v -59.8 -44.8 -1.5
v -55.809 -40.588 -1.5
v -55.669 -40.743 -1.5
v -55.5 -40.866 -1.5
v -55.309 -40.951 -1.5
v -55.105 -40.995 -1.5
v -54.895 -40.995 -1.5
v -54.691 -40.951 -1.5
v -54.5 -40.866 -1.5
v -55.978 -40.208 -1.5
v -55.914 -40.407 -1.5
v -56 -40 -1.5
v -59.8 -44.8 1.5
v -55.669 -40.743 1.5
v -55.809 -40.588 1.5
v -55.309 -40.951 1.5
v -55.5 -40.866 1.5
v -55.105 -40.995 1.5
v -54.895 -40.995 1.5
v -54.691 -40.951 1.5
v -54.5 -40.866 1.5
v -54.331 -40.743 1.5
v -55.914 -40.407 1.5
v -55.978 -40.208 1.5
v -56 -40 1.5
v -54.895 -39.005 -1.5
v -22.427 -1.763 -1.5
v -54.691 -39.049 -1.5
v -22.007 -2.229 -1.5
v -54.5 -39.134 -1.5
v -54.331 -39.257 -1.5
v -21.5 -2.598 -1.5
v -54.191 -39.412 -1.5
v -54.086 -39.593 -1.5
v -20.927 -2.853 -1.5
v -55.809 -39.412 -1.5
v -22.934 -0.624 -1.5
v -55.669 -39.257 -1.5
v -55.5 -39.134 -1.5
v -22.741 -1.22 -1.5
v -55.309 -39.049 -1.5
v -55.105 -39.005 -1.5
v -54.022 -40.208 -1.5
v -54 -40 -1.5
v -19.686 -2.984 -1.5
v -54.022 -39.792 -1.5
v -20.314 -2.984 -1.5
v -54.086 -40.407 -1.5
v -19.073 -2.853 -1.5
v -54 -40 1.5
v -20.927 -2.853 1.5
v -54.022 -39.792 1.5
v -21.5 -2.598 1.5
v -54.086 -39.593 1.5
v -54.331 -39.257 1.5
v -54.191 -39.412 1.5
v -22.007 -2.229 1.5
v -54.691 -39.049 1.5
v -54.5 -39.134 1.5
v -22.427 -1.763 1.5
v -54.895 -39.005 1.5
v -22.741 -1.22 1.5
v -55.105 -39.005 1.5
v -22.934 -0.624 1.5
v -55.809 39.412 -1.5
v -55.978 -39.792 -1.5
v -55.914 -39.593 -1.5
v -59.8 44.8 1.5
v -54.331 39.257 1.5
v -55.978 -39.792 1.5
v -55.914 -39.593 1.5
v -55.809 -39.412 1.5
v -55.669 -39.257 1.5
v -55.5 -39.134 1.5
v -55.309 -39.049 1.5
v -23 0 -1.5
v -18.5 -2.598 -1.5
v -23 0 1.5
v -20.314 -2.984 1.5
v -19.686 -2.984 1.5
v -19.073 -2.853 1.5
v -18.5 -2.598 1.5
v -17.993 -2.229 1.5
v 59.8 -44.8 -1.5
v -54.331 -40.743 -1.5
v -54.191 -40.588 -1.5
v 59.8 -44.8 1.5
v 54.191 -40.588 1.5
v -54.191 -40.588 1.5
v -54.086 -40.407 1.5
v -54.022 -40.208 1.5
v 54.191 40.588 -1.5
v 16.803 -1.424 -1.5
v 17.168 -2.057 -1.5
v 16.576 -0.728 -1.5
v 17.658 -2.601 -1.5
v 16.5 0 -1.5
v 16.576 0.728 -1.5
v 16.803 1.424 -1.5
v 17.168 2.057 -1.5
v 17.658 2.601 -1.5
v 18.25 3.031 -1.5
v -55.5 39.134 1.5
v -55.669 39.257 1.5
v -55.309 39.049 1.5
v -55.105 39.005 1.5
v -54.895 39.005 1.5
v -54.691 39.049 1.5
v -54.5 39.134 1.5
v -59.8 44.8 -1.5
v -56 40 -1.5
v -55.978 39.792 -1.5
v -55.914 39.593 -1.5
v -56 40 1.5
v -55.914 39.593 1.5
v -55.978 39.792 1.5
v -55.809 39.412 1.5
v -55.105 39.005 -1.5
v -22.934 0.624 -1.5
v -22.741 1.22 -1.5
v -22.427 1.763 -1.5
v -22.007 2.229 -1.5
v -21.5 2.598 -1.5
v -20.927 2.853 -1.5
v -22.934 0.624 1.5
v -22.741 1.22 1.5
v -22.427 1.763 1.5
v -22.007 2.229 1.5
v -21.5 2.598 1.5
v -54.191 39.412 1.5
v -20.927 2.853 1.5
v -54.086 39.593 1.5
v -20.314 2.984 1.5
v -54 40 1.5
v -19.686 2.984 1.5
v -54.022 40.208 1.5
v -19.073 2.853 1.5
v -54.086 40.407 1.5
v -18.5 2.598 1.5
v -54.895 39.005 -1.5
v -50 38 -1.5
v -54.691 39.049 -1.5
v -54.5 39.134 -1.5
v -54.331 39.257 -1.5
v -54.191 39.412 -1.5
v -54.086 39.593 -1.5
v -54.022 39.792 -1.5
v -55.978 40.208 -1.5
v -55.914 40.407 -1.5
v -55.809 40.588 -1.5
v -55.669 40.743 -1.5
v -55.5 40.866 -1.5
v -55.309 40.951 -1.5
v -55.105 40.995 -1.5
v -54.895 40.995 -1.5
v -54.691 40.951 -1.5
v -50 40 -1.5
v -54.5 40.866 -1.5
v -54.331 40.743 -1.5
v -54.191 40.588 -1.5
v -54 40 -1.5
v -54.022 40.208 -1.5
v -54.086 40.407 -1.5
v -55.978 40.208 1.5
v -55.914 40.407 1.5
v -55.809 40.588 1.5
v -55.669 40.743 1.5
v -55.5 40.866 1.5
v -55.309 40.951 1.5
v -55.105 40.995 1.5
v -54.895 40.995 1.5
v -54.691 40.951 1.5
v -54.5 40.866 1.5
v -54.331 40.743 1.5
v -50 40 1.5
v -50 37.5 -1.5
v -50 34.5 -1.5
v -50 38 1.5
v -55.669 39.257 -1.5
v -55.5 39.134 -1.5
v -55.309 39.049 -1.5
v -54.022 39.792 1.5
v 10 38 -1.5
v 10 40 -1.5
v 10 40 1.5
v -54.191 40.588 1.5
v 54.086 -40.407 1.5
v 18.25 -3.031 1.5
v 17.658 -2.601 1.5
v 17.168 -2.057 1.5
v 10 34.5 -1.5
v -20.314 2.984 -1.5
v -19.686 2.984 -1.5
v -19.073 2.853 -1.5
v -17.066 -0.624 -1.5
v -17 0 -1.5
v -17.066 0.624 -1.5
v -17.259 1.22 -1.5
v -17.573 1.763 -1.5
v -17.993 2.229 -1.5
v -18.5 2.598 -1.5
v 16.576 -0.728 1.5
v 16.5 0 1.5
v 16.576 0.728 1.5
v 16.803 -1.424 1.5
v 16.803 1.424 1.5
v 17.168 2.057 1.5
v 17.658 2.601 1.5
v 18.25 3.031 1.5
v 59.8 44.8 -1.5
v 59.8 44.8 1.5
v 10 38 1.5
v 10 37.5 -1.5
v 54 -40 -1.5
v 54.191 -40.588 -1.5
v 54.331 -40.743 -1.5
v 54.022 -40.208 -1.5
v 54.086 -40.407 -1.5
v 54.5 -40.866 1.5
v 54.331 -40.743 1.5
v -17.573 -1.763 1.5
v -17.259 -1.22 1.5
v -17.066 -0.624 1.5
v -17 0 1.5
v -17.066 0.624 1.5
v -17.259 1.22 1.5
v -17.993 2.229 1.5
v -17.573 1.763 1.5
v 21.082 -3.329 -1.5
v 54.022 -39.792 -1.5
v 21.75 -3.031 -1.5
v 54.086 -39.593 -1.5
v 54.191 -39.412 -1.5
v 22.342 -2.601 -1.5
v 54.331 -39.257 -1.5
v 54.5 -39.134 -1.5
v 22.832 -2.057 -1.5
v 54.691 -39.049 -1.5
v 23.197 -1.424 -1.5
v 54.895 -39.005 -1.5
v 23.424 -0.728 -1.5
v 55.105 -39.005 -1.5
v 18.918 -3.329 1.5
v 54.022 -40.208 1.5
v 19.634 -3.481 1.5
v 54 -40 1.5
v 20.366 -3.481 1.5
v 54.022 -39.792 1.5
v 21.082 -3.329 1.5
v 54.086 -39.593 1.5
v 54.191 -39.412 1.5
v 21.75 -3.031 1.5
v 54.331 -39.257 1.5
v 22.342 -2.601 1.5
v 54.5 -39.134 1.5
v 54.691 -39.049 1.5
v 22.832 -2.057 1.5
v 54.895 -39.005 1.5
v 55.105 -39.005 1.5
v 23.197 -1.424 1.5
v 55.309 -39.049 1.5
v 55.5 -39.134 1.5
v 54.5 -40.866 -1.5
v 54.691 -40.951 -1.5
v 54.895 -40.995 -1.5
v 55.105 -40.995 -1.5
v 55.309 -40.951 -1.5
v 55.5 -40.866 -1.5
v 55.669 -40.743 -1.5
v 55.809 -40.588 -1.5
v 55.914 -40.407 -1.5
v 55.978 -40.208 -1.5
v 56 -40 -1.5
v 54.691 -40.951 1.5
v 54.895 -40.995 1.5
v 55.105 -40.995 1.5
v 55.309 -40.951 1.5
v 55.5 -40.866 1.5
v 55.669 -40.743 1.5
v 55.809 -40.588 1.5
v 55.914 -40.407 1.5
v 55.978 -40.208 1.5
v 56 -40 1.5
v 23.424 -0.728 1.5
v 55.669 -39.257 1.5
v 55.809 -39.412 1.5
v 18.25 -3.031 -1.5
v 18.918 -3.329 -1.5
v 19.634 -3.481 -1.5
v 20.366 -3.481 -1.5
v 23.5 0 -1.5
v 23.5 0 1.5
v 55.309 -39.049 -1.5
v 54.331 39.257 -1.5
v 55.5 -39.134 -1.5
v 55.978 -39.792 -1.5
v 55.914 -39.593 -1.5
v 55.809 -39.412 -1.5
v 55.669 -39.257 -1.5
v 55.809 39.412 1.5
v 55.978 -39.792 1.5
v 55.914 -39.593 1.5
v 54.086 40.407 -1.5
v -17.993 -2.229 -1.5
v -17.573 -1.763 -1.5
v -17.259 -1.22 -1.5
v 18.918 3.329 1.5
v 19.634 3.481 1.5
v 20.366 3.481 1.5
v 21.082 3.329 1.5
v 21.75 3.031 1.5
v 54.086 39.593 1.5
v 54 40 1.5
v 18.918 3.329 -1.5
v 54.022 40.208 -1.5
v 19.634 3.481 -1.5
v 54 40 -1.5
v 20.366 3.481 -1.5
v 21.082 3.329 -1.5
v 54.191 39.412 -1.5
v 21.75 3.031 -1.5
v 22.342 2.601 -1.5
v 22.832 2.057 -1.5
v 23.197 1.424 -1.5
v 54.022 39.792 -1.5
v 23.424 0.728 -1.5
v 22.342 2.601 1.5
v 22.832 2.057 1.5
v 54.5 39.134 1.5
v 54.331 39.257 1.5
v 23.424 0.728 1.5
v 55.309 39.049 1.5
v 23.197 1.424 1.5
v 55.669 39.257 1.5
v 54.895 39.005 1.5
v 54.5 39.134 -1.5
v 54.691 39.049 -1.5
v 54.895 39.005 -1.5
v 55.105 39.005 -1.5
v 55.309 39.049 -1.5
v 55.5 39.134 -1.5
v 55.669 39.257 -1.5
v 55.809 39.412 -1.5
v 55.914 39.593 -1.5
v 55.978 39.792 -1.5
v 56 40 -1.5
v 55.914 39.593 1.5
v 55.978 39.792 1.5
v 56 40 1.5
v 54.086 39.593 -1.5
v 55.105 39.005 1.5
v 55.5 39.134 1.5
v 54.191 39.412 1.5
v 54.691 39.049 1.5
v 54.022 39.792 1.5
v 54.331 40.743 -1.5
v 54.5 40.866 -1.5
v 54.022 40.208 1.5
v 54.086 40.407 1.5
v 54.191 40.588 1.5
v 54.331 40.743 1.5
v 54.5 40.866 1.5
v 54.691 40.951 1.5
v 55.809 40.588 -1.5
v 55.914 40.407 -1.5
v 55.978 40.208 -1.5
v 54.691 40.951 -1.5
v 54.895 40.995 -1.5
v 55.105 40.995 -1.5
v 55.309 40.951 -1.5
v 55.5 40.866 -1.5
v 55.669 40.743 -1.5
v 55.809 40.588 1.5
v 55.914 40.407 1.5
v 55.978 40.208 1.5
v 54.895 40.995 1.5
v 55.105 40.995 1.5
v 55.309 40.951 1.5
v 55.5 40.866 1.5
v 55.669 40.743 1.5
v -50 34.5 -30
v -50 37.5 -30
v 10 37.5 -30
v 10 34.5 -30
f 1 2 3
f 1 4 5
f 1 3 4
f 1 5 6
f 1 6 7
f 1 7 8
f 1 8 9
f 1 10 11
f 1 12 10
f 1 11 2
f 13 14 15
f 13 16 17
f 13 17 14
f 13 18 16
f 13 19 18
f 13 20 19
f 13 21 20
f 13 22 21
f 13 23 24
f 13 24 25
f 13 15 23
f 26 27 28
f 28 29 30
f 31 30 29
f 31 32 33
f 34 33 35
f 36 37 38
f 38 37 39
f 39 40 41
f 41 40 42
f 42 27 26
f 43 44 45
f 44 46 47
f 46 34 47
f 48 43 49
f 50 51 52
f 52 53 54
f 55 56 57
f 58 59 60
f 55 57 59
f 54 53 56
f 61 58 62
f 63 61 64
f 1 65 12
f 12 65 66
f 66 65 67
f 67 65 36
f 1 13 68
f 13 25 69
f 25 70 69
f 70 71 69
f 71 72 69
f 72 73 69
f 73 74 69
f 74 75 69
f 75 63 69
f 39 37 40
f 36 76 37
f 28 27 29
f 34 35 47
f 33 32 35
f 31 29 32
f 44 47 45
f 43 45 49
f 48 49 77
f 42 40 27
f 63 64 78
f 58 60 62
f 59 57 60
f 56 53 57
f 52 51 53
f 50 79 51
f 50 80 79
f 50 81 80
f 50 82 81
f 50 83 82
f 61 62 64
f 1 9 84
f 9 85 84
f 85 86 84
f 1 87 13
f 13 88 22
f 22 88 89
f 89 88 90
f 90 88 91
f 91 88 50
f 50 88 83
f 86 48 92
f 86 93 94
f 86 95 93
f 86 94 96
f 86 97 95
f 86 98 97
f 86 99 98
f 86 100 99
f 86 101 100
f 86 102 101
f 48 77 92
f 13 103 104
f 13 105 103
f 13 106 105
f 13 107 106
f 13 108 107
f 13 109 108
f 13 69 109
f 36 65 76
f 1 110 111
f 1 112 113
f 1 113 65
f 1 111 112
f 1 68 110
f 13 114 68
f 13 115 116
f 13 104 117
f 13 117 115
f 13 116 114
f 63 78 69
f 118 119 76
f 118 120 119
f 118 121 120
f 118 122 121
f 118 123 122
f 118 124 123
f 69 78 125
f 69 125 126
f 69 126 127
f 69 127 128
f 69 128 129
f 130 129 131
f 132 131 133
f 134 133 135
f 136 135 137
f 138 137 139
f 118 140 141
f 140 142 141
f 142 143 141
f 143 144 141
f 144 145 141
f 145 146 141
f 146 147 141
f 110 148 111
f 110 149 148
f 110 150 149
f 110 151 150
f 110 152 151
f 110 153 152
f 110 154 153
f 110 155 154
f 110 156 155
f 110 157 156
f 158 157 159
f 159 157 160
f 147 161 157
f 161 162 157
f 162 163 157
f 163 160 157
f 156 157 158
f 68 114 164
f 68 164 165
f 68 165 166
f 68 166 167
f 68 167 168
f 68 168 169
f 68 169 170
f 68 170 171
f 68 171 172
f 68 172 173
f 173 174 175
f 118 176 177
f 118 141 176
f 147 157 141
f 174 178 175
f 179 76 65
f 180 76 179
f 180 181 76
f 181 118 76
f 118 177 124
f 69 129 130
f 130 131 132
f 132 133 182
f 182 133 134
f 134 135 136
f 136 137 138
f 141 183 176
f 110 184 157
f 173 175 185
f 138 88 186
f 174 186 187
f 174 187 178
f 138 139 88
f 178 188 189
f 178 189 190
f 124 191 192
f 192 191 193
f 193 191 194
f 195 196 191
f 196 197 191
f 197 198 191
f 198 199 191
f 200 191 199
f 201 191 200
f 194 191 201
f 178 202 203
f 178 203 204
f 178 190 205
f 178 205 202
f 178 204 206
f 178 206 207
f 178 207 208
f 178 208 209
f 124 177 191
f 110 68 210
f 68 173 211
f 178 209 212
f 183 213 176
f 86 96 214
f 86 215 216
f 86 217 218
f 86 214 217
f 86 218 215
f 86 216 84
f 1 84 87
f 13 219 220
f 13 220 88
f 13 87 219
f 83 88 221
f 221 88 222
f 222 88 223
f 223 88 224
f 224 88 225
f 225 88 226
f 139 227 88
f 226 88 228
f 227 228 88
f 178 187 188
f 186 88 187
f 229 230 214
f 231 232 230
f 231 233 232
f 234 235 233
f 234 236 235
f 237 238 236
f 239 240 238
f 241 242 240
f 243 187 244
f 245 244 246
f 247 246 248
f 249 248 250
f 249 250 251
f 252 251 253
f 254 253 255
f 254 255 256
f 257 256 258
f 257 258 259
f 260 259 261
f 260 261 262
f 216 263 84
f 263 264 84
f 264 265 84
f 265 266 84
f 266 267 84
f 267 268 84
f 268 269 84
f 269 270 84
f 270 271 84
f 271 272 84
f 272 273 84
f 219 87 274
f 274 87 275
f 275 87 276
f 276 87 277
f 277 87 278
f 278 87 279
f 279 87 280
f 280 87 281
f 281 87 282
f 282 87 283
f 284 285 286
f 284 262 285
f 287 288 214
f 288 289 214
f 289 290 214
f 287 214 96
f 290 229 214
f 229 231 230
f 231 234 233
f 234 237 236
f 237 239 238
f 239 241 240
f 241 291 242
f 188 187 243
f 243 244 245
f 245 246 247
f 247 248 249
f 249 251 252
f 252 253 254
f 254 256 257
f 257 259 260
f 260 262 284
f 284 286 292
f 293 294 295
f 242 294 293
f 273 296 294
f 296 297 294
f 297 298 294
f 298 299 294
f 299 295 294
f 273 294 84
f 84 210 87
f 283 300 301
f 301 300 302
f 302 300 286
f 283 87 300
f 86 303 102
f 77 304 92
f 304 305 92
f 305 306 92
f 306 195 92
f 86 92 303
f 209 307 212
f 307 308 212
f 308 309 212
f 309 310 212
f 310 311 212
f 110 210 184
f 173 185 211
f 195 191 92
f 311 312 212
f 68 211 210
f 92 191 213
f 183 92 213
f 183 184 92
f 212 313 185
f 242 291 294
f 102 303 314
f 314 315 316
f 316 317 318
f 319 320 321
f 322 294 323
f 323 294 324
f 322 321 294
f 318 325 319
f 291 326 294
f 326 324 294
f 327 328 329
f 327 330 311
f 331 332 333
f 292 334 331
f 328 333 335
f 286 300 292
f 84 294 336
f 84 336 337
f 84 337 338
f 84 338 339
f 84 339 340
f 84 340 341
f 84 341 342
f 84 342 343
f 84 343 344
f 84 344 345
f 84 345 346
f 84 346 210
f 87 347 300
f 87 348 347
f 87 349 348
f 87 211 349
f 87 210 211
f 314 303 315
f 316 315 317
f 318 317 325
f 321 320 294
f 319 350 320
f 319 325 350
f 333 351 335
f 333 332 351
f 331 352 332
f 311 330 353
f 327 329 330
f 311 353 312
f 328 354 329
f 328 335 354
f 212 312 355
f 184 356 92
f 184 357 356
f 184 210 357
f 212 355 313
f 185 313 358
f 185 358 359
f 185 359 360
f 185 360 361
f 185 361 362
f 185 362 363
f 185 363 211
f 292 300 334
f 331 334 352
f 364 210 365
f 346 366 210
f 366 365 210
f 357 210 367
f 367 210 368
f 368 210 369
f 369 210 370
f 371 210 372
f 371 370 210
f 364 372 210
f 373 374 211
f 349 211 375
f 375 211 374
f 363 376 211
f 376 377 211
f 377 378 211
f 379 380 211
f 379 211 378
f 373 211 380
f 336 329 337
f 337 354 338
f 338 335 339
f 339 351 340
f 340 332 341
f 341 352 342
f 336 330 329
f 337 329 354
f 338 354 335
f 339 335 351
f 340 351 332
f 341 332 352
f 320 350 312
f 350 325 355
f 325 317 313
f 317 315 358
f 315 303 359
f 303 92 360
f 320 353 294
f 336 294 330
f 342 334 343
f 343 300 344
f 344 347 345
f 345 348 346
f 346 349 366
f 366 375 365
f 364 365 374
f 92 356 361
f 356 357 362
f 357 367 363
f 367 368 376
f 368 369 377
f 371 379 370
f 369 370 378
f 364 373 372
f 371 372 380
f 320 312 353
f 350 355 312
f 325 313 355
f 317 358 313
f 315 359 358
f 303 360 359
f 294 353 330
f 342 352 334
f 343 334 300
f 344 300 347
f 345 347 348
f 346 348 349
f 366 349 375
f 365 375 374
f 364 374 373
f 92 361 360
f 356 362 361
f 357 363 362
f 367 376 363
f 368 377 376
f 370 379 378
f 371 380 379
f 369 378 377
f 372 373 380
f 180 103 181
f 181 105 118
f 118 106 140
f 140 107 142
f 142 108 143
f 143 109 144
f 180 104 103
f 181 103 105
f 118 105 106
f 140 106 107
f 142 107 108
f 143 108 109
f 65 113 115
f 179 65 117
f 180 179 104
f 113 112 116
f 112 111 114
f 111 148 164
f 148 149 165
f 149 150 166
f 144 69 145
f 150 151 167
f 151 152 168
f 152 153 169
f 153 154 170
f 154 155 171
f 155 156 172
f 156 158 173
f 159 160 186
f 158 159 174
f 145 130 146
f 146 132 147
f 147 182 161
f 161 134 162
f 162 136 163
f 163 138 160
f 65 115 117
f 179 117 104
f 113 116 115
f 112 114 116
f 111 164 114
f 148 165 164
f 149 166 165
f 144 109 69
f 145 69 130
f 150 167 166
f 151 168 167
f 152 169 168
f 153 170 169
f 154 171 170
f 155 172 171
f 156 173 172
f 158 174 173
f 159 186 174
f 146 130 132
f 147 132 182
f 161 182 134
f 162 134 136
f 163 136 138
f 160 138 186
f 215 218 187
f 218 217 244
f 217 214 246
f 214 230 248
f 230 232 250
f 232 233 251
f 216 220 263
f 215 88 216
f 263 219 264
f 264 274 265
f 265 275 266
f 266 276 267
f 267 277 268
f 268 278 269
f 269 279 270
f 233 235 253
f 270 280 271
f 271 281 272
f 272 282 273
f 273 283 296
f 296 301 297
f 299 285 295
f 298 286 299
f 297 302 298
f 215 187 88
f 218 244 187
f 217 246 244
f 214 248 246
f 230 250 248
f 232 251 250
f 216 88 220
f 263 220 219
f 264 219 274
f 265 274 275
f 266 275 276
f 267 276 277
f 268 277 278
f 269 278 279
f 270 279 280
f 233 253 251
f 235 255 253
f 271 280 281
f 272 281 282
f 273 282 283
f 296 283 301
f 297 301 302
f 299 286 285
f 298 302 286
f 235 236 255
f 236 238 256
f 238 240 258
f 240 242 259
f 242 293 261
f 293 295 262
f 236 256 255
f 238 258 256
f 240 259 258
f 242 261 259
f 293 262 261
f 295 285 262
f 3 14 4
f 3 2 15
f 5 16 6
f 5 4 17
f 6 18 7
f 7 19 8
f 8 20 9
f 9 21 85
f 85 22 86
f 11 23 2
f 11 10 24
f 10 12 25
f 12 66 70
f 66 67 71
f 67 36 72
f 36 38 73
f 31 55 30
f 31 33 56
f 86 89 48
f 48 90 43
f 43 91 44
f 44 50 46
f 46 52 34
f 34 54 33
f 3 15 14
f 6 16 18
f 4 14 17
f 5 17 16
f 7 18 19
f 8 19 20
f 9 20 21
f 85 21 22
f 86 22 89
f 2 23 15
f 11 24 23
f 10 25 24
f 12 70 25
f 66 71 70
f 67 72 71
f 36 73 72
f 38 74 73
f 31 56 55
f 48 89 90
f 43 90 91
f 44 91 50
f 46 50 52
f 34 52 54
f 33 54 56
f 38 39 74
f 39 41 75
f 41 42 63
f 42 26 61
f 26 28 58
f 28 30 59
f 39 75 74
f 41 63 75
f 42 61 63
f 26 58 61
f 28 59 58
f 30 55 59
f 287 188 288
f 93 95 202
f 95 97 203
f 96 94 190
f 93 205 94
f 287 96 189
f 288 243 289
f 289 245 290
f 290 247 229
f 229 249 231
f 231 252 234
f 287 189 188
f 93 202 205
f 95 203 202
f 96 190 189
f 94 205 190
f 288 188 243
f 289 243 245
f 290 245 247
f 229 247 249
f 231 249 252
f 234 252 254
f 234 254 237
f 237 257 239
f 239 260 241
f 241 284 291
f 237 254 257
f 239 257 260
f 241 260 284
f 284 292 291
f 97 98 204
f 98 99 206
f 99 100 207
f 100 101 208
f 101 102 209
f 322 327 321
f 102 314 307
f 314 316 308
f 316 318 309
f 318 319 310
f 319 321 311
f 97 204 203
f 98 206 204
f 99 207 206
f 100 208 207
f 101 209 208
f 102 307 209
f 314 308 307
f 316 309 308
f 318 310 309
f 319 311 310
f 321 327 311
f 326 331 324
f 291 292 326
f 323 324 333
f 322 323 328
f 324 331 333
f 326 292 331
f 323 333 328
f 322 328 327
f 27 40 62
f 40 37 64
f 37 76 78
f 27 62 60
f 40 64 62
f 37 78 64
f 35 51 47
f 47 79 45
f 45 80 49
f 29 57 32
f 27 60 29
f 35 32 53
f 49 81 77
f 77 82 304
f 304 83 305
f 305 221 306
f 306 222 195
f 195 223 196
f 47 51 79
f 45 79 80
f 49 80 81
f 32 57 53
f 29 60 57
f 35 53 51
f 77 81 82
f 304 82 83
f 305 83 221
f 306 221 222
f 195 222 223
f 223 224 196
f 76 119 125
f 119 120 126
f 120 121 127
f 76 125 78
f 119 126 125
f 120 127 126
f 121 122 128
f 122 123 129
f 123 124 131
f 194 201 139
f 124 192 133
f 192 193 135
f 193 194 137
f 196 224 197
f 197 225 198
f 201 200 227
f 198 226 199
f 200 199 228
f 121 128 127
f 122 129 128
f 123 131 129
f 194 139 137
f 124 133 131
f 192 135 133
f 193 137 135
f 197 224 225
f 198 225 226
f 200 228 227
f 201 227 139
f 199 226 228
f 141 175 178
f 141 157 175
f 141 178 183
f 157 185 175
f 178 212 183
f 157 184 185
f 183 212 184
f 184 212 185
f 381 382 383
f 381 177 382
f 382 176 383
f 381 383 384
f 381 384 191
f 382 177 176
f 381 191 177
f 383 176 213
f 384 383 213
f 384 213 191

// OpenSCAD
// file: constantes.scad
hauteur = 90;
longueur = 130;
largeur = 100;
epaisseur = 5;
jeu = 0.2;
// file: commun.scad
jeu = 0.2;

module m2_trou_vis(hauteur=10) {
    cylinder(h=hauteur, r1=1, r2=1, center=true, $fn=30);
}

module m2_trou_insert(hauteur=10) {
    cylinder(h=hauteur, r1=1.6, r2=1.6, center=true, $fn=30);
}

module m3_trou_vis(hauteur=10) {
    cylinder(h=hauteur, r1=1.5, r2=1.5, center=true, $fn=30);
}

module m3_trou_insert(hauteur=10) {
    cylinder(h=hauteur, r1=2, r2=2, center=true, $fn=30);
}

module relai_arduino_support(hauteur=10) {
    pieds_support_rect(28, 20, hauteur, 8);
}

module pieds_support_rect(longueur=28, largeur=20, hauteur=10, profondeur_trou=10) {
    // La longueur et la largeur correspondent aux entre-axes des trous
    // de fixation
    translate([-longueur/2, -largeur/2, 0]) pied(hauteur, profondeur_trou);
    translate([-longueur/2, largeur/2, 0]) pied(hauteur, profondeur_trou);
    translate([longueur/2, -largeur/2, 0]) pied(hauteur, profondeur_trou);
    translate([longueur/2, largeur/2, 0]) pied(hauteur, profondeur_trou);
}

module pied(hauteur=10, profondeur_trou = 10) {
    difference() {
        cube([8, 8, hauteur], center=true);
        translate([0, 0, (hauteur-profondeur_trou)/2]) m2_trou_insert(profondeur_trou+jeu);
    }
}
// main file
use <commun.scad>

include <constantes.scad>

longueur_couvercle = longueur-2*epaisseur;
largeur_couvercle = largeur-2*epaisseur;

module couvercle() {
    union() {
        difference() {
            cube([longueur_couvercle-2*jeu, largeur_couvercle-2*jeu, 3], center = true);
            
            // Trous vis
            translate ([longueur/2-2*epaisseur, largeur/2-2*epaisseur, 0]) m2_trou_vis();
            translate ([-longueur/2+2*epaisseur, largeur/2-2*epaisseur, 0]) m2_trou_vis();
            translate ([longueur/2-2*epaisseur, -largeur/2+2*epaisseur, 0]) m2_trou_vis();
            translate ([-longueur/2+2*epaisseur, -largeur/2+2*epaisseur, 0]) m2_trou_vis();
            
            // Trou bouton
            translate ([longueur_couvercle/6, 0, 0]) cylinder(h=2*epaisseur, r1=3.5, r2=3.5, center=true, $fn=30);
            
            // Trou LED
            translate ([-longueur_couvercle/6, 0, 0]) cylinder(h=2*epaisseur, r1=3, r2=3, center=true, $fn=30);
            
            // Trou carte
            translate ([-longueur_couvercle/2+40, largeur_couvercle/2-6, 0]) cube([60, 2, 2*epaisseur], center = true);
        }
     
        // Plaque carte
        h = 30;
        translate ([-longueur_couvercle/2+40, largeur_couvercle/2-9, -15]) cube([60, 3, h], center = true);
    }
}

couvercle();
